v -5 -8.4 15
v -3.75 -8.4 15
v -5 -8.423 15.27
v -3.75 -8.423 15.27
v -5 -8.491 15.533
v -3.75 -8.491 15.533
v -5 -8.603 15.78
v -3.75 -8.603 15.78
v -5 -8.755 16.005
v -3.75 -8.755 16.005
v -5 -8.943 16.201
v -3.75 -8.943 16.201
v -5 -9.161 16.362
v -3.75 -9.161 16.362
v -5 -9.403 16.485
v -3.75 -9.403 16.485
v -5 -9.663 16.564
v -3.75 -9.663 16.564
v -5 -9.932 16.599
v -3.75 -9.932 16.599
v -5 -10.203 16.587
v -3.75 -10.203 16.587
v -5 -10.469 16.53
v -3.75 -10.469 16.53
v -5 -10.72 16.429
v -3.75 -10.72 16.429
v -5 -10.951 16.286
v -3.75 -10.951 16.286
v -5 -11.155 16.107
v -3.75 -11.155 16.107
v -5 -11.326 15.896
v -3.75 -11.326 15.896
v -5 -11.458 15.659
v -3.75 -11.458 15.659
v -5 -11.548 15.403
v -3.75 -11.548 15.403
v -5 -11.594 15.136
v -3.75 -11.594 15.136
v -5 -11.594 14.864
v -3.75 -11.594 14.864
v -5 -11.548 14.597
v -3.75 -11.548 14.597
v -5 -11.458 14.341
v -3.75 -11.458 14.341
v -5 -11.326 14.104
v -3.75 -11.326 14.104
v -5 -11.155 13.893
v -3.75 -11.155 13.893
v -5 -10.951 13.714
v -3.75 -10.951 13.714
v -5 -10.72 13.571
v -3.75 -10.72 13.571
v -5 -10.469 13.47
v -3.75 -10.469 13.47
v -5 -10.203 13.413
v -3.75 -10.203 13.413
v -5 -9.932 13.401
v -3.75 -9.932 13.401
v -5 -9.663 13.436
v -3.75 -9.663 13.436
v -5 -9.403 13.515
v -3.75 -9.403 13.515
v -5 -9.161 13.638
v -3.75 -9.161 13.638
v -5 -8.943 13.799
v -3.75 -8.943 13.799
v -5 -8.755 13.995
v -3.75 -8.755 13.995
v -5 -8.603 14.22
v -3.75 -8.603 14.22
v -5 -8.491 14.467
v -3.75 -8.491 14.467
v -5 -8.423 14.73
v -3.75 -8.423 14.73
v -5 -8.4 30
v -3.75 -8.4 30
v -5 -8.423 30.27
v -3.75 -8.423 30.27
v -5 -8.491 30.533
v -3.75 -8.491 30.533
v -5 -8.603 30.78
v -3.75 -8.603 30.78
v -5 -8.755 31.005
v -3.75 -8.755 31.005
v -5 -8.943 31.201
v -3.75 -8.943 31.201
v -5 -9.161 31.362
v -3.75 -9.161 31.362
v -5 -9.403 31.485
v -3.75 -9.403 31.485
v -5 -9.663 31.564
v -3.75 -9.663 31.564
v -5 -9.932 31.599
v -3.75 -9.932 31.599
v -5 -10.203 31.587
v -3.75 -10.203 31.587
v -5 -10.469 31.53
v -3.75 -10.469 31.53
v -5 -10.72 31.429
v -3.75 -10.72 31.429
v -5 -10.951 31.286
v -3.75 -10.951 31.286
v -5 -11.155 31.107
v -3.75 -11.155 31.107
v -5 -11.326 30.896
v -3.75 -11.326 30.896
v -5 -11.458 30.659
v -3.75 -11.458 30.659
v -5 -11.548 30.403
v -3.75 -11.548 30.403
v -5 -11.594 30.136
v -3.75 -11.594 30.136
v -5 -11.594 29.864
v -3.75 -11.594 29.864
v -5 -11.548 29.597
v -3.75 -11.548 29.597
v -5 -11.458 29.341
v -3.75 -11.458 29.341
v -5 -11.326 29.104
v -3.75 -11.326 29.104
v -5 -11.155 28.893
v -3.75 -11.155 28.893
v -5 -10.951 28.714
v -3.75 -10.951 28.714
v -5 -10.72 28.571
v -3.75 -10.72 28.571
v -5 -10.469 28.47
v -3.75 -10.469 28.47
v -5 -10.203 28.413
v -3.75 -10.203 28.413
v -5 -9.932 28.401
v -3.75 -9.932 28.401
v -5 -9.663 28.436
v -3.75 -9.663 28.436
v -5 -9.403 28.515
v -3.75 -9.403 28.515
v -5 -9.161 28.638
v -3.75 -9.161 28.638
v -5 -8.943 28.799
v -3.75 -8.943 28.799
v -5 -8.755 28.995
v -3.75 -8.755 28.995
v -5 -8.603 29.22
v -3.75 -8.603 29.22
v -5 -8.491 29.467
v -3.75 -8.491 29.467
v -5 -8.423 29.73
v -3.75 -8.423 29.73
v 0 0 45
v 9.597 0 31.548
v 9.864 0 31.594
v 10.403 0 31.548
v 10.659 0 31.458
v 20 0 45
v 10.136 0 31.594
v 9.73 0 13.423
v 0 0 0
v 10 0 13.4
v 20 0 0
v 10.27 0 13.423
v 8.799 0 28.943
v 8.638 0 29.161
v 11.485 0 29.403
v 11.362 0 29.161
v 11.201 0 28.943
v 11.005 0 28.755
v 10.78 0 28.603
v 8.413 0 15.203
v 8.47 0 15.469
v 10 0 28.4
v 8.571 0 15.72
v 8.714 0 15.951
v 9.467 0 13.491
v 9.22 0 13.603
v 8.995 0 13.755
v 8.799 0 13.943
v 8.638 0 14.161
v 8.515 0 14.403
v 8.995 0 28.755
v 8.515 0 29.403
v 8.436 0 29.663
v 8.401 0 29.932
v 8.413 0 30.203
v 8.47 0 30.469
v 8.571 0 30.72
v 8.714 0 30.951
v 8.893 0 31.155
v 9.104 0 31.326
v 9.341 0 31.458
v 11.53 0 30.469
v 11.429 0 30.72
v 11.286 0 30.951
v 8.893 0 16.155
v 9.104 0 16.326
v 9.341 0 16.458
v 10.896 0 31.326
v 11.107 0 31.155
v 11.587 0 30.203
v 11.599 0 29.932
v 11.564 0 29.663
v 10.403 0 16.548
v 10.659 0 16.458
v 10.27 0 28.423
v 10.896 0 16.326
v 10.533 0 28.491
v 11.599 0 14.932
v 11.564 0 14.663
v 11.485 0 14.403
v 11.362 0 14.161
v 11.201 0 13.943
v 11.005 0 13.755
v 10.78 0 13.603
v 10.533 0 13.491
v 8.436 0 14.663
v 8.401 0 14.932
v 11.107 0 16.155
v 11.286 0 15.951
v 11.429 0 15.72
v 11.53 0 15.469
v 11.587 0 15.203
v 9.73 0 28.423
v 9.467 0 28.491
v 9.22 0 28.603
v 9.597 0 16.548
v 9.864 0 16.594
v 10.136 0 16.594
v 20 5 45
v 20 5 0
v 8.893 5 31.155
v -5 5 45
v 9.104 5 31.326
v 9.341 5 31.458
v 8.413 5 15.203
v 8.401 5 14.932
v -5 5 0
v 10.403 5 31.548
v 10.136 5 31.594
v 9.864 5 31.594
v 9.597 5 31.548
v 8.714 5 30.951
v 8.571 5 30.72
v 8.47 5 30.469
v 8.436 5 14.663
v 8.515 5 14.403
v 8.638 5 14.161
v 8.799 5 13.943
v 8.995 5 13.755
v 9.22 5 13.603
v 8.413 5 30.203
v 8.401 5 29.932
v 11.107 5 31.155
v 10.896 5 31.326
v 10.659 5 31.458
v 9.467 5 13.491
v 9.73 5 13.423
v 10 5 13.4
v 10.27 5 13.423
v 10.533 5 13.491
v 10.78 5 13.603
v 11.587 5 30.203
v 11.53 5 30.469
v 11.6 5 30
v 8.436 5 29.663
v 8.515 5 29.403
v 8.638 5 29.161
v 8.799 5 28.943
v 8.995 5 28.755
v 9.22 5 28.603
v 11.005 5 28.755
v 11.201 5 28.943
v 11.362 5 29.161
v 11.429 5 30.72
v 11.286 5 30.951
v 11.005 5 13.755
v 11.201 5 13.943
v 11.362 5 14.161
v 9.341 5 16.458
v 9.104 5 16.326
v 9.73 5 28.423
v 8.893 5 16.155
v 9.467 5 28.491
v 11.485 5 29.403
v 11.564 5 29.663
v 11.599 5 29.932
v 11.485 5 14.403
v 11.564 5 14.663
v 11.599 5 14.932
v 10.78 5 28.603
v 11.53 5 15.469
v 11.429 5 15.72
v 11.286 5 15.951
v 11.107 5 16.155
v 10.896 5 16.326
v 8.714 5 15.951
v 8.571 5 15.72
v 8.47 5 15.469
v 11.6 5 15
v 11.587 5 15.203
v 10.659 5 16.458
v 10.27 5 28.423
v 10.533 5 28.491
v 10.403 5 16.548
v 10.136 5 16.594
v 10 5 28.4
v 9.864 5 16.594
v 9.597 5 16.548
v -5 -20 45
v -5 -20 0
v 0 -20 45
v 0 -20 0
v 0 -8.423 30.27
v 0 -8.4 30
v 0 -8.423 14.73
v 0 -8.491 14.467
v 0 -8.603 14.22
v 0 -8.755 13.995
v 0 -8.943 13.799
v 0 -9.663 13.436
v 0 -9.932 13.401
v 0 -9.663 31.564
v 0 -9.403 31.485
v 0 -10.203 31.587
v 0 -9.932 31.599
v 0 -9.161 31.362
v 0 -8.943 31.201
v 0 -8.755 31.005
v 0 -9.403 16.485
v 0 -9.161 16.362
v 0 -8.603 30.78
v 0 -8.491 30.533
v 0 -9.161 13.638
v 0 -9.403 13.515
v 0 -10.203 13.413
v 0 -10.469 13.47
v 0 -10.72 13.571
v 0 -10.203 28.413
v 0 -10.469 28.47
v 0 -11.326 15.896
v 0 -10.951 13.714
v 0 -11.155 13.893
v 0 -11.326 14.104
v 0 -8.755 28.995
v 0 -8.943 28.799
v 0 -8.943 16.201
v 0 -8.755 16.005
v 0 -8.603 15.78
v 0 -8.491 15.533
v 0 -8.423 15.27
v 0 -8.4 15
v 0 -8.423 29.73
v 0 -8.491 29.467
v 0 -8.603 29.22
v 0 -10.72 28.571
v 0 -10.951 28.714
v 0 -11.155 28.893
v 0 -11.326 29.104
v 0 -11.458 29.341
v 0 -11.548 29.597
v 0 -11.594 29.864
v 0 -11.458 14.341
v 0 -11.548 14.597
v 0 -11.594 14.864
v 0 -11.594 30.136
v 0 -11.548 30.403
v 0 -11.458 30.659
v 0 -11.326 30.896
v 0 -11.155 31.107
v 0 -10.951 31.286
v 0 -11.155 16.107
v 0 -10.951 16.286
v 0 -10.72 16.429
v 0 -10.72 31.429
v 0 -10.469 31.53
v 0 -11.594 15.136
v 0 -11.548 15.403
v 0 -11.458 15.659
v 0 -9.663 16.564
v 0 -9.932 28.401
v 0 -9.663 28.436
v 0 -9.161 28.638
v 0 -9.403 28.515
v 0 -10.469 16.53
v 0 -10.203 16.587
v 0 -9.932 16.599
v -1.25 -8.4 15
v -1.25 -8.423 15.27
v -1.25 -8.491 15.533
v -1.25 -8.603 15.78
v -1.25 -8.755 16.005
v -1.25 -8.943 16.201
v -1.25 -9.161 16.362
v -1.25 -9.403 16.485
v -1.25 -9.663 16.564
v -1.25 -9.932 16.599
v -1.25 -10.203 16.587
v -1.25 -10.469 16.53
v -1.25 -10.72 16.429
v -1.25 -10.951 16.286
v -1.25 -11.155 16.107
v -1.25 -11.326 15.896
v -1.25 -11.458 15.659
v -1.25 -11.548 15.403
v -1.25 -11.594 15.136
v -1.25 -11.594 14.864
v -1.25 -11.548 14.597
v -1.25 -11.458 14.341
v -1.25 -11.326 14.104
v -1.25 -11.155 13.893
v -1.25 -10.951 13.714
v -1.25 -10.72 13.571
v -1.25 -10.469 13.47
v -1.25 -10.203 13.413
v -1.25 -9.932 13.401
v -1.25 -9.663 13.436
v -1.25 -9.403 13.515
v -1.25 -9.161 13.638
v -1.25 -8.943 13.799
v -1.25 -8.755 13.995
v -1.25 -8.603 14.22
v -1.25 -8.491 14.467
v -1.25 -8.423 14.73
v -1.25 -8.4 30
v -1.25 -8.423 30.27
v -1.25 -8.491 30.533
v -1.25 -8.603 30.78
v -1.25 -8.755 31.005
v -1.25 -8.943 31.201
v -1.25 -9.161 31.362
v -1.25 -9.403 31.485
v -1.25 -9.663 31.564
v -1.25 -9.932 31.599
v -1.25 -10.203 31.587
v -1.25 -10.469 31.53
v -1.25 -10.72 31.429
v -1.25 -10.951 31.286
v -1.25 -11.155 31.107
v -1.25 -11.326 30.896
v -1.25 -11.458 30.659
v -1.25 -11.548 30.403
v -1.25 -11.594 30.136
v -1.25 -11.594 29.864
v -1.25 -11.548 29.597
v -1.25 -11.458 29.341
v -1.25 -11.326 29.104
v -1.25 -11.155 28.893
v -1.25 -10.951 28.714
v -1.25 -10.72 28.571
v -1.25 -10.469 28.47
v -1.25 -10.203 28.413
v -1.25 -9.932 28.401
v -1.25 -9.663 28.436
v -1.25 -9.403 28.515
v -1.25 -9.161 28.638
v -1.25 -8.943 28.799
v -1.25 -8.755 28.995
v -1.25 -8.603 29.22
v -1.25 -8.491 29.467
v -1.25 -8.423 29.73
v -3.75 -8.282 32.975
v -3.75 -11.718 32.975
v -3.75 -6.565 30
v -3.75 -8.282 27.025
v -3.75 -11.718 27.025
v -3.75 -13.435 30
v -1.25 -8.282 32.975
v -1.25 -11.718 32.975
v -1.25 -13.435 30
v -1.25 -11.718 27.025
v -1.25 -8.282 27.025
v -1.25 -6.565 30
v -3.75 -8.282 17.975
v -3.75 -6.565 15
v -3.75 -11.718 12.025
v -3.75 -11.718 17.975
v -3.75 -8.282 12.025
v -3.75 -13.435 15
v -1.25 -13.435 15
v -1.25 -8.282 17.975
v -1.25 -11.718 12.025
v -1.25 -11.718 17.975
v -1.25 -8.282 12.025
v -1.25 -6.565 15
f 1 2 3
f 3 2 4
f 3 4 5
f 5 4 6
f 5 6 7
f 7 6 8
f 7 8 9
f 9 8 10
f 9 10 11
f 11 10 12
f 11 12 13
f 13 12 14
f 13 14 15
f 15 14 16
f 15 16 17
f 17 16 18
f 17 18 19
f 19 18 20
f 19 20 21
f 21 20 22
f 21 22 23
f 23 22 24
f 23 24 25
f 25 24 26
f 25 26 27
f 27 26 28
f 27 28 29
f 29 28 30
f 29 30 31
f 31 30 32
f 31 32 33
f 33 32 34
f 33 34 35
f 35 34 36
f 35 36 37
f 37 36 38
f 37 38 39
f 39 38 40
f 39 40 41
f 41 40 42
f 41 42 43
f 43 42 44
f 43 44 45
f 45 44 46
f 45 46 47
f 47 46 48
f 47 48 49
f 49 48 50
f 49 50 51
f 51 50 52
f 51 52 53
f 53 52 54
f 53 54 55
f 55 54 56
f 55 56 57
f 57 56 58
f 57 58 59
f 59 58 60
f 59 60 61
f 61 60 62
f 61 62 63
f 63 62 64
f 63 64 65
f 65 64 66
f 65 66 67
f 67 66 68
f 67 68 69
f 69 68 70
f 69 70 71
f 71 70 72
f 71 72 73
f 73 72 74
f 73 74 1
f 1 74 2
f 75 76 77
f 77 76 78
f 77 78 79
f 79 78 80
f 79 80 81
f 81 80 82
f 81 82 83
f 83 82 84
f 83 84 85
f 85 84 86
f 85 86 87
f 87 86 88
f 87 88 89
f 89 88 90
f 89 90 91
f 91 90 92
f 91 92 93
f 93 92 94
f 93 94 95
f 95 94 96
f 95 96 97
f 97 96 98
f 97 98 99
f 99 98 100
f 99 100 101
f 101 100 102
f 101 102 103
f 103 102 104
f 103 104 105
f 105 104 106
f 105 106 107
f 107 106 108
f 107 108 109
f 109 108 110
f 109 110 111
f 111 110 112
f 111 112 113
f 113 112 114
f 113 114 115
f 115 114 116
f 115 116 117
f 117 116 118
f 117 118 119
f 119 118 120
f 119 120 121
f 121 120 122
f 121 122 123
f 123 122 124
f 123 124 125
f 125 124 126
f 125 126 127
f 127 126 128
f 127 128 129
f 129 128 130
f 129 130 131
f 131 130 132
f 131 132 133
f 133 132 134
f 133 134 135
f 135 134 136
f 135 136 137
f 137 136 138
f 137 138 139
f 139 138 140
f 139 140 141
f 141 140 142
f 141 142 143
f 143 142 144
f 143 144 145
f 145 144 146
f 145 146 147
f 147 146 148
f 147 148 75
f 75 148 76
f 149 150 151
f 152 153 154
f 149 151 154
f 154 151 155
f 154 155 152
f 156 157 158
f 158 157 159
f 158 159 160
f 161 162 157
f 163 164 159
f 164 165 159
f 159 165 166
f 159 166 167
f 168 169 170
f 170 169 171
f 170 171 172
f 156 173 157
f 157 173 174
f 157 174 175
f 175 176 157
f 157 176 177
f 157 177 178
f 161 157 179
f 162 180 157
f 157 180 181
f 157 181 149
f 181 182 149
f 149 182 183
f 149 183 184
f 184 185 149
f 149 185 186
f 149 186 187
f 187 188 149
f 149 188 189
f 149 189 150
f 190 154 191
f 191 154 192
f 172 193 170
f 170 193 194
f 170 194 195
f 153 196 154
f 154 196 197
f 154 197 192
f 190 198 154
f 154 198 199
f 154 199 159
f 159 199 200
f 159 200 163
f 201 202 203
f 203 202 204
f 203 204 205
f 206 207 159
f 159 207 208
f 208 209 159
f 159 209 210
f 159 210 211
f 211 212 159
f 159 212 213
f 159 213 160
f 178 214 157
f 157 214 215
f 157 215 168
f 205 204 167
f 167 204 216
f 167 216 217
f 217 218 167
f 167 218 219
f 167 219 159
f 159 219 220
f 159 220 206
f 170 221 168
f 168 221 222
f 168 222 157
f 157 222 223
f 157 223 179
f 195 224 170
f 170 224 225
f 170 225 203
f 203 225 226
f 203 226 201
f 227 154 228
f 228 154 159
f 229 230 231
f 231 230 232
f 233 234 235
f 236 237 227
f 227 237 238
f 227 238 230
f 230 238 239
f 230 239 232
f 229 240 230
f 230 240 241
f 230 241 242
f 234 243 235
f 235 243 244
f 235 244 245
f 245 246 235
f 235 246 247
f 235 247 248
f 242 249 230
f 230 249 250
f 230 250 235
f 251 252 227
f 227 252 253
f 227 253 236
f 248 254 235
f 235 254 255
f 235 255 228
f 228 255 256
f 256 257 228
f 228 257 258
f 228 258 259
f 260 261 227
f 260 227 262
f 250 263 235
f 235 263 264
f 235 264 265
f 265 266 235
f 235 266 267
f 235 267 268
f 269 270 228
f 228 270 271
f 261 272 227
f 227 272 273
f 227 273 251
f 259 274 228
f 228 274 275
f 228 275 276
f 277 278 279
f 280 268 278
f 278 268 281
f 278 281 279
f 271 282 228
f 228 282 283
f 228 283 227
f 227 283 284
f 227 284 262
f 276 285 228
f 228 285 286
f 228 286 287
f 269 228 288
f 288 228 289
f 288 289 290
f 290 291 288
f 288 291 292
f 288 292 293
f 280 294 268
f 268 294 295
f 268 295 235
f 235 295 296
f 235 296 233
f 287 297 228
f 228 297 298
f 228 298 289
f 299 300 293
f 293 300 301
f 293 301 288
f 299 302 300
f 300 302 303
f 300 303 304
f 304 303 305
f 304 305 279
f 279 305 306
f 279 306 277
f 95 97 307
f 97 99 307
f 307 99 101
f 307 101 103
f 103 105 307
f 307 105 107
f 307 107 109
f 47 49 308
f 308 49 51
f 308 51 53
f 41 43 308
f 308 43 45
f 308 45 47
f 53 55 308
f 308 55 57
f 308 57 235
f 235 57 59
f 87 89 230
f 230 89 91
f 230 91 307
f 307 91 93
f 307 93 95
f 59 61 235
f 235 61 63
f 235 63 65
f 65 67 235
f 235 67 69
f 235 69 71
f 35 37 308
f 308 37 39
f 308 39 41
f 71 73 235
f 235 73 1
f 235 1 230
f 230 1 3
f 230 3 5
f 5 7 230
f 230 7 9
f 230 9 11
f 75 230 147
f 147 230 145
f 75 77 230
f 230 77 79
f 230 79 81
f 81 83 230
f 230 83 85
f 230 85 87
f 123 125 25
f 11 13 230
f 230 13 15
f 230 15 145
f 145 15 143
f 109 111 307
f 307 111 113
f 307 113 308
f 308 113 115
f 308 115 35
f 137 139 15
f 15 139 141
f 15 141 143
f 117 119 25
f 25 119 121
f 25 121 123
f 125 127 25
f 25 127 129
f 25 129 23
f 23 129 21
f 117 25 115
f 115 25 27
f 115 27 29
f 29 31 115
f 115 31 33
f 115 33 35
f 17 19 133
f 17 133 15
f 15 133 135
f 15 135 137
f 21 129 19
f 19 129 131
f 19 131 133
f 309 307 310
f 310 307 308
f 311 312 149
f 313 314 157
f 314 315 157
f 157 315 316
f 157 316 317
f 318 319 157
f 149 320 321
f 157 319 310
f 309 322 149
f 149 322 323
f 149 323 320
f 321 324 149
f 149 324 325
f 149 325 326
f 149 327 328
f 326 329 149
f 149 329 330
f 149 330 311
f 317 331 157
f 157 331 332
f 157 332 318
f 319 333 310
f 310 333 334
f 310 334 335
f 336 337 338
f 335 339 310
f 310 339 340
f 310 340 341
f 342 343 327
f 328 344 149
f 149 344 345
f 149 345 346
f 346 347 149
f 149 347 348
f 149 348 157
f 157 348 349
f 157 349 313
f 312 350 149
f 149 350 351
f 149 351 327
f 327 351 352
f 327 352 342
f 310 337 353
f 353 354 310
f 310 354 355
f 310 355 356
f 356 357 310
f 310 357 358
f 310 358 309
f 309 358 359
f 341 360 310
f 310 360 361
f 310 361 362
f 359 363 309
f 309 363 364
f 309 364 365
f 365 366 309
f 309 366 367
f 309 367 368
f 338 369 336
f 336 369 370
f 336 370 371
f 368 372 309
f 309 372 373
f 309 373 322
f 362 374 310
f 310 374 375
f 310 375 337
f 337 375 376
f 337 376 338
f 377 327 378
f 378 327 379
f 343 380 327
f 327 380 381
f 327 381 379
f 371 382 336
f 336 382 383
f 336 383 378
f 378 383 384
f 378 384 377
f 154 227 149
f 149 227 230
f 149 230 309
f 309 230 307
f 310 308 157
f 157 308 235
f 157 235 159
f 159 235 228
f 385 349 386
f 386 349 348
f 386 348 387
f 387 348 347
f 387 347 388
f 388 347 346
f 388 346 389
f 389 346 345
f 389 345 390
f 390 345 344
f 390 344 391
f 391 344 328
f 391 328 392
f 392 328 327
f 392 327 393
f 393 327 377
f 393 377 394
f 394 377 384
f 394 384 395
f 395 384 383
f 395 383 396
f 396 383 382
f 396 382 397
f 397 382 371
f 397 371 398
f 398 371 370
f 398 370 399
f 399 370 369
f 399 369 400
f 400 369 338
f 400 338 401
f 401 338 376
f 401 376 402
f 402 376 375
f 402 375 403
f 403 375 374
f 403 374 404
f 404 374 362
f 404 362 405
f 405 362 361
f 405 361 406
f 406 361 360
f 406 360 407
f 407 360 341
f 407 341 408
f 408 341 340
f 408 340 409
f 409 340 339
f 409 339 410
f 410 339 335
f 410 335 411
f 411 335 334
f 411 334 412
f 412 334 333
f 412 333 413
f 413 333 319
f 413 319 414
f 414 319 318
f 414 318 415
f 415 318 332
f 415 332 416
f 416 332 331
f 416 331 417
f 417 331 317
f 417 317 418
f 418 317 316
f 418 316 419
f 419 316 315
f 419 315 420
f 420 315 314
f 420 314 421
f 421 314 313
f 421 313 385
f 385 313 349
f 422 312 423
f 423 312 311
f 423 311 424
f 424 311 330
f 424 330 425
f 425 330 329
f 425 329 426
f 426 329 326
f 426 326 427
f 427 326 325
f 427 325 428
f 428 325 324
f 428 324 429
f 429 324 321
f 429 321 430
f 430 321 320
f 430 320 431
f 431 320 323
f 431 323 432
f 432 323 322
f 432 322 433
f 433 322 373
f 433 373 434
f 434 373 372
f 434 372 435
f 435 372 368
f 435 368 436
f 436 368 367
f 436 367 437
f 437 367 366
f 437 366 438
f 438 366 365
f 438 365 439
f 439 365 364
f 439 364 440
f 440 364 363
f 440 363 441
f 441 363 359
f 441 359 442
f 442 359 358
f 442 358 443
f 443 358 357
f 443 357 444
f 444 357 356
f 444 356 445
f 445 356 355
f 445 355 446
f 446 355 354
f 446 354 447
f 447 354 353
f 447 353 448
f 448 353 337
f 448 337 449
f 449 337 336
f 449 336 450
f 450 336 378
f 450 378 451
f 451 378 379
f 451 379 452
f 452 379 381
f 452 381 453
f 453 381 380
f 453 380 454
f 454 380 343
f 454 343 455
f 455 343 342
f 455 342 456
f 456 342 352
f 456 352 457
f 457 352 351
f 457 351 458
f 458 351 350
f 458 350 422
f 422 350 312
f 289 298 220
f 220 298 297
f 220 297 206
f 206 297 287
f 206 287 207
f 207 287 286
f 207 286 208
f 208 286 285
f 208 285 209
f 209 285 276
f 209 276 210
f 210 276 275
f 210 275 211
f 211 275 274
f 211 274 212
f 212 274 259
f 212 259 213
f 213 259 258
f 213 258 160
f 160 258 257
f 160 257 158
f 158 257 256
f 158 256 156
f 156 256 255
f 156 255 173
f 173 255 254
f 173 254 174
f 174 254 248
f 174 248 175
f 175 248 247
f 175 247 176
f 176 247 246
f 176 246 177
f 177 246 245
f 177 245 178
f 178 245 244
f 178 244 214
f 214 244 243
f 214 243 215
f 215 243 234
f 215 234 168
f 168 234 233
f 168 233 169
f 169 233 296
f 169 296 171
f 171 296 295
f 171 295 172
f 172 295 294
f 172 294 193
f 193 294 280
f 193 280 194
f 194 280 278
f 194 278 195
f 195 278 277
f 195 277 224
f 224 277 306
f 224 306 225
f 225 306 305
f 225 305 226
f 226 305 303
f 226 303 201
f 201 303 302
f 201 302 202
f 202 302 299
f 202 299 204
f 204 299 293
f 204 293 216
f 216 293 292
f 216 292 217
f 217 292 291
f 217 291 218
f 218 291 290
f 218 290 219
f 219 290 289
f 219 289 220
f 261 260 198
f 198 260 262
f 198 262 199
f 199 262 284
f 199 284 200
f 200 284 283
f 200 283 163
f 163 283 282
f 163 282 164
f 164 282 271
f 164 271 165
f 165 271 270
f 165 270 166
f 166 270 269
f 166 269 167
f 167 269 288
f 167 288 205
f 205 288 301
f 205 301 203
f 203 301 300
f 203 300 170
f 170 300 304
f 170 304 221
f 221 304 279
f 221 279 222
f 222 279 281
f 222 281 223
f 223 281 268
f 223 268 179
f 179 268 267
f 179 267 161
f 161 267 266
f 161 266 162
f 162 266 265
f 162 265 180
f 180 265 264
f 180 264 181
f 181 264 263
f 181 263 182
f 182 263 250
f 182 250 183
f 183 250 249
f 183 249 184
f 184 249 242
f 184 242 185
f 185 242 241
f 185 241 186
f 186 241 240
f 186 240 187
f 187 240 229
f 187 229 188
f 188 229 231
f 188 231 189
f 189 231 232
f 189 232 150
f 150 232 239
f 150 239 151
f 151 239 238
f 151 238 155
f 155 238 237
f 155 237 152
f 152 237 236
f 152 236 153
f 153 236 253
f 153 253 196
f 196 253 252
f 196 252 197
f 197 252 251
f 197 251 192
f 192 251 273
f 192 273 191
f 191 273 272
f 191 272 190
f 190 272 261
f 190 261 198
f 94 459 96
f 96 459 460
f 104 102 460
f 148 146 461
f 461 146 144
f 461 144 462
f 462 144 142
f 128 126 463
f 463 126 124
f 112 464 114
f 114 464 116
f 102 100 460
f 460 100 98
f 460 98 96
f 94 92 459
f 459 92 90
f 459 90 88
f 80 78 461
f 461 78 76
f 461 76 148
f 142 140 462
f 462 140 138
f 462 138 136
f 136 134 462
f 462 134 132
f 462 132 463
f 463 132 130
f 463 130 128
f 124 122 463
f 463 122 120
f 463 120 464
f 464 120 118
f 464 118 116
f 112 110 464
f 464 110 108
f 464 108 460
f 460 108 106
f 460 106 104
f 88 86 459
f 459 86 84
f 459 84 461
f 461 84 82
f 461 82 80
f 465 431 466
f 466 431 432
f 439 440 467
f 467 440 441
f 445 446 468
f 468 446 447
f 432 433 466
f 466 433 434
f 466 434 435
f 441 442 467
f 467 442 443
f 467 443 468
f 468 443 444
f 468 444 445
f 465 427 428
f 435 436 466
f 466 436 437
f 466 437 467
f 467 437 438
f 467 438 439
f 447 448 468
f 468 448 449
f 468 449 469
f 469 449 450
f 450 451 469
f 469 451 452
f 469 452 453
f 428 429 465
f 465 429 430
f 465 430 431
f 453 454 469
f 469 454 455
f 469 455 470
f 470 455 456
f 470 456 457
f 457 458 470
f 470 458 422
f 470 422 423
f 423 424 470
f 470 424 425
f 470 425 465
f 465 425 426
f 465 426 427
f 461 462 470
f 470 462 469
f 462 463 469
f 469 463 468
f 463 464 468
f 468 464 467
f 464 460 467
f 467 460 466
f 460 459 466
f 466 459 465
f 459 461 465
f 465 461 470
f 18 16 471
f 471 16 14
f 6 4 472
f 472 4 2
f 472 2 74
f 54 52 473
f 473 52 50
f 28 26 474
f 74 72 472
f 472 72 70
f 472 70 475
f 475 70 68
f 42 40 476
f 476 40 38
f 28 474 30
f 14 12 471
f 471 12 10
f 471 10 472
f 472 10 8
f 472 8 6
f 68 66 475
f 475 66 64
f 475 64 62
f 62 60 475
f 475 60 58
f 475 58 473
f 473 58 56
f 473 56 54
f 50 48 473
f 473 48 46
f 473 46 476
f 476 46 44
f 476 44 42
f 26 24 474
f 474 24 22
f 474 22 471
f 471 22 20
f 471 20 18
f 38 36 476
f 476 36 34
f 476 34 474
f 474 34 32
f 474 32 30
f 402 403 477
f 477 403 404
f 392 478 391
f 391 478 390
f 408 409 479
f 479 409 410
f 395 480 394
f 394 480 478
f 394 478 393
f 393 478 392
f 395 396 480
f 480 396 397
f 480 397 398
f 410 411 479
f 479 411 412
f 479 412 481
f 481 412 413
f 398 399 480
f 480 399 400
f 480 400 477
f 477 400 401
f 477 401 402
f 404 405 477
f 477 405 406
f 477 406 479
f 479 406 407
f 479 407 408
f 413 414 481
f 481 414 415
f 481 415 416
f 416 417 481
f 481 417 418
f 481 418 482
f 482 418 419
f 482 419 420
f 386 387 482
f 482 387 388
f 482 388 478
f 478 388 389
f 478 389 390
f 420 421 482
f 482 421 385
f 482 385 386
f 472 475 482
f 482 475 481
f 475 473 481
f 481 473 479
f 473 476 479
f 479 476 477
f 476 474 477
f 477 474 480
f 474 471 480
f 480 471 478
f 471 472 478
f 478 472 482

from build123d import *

# Parameters (mm, degrees)
BOSS_EXTRUDE1_DEPTH = 45
CUT_EXTRUDE1_REACH  = 7
SKETCH2_R           = 1.6
CUT_EXTRUDE2_REACH  = 7
SKETCH3_R           = 1.6
CUT_EXTRUDE3_START  = -1.25
CUT_EXTRUDE3_DEPTH  = 2.5


with BuildPart() as part:
    # Sketch1 → Boss-Extrude1 (new body)
    with BuildSketch(Plane.XY):
        Polygon((0, 0), (0, -20), (-5, -20), (-5, 5), (20, 5), (20, 0), align=None)
    extrude(amount=BOSS_EXTRUDE1_DEPTH)

    # Sketch2 → Cut-Extrude1 (cut, up to next)
    with BuildSketch(Plane(origin=(0, 0, 0), x_dir=(0, 0, -1), z_dir=(1, 0, 0)), mode=Mode.PRIVATE) as cut_extrude1_sk1:
        with Locations((-30, -10)):
            Circle(SKETCH2_R)
    cut_extrude1_tool1 = extrude(cut_extrude1_sk1.sketch, amount=-CUT_EXTRUDE1_REACH, mode=Mode.PRIVATE) & part.part
    add(cut_extrude1_tool1.solids().sort_by_distance((0, -10, 30))[0], mode=Mode.SUBTRACT)
    # Sketch2 → Cut-Extrude1 (cut, up to next)
    with BuildSketch(Plane(origin=(0, 0, 0), x_dir=(0, 0, -1), z_dir=(1, 0, 0)), mode=Mode.PRIVATE) as cut_extrude1_sk2:
        with Locations((-15, -10)):
            Circle(SKETCH2_R)
    cut_extrude1_tool2 = extrude(cut_extrude1_sk2.sketch, amount=-CUT_EXTRUDE1_REACH, mode=Mode.PRIVATE) & part.part
    add(cut_extrude1_tool2.solids().sort_by_distance((0, -10, 15))[0], mode=Mode.SUBTRACT)

    # Sketch3 → Cut-Extrude2 (cut, up to next)
    with BuildSketch(Plane.XZ, mode=Mode.PRIVATE) as cut_extrude2_sk1:
        with Locations((10, 30)):
            Circle(SKETCH3_R)
    cut_extrude2_tool1 = extrude(cut_extrude2_sk1.sketch, amount=-CUT_EXTRUDE2_REACH, mode=Mode.PRIVATE) & part.part
    add(cut_extrude2_tool1.solids().sort_by_distance((10, 0, 30))[0], mode=Mode.SUBTRACT)
    # Sketch3 → Cut-Extrude2 (cut, up to next)
    with BuildSketch(Plane.XZ, mode=Mode.PRIVATE) as cut_extrude2_sk2:
        with Locations((10, 15)):
            Circle(SKETCH3_R)
    cut_extrude2_tool2 = extrude(cut_extrude2_sk2.sketch, amount=-CUT_EXTRUDE2_REACH, mode=Mode.PRIVATE) & part.part
    add(cut_extrude2_tool2.solids().sort_by_distance((10, 0, 15))[0], mode=Mode.SUBTRACT)

    # Sketch4 → Cut-Extrude3 (cut)
    with BuildSketch(Plane(origin=(0, 0, 0), x_dir=(0, 0, -1), z_dir=(1, 0, 0)).offset(CUT_EXTRUDE3_START)):
        Polygon((-30, -6.564765898), (-32.975, -8.282382949), (-32.975, -11.717617051), (-30, -13.435234102), (-27.025, -11.717617051), (-27.025, -8.282382949), align=None)
        Polygon((-15, -6.564765898), (-17.975, -8.282382949), (-17.975, -11.717617051), (-15, -13.435234102), (-12.025, -11.717617051), (-12.025, -8.282382949), align=None)
    extrude(amount=-CUT_EXTRUDE3_DEPTH, mode=Mode.SUBTRACT)


solid = part.part
